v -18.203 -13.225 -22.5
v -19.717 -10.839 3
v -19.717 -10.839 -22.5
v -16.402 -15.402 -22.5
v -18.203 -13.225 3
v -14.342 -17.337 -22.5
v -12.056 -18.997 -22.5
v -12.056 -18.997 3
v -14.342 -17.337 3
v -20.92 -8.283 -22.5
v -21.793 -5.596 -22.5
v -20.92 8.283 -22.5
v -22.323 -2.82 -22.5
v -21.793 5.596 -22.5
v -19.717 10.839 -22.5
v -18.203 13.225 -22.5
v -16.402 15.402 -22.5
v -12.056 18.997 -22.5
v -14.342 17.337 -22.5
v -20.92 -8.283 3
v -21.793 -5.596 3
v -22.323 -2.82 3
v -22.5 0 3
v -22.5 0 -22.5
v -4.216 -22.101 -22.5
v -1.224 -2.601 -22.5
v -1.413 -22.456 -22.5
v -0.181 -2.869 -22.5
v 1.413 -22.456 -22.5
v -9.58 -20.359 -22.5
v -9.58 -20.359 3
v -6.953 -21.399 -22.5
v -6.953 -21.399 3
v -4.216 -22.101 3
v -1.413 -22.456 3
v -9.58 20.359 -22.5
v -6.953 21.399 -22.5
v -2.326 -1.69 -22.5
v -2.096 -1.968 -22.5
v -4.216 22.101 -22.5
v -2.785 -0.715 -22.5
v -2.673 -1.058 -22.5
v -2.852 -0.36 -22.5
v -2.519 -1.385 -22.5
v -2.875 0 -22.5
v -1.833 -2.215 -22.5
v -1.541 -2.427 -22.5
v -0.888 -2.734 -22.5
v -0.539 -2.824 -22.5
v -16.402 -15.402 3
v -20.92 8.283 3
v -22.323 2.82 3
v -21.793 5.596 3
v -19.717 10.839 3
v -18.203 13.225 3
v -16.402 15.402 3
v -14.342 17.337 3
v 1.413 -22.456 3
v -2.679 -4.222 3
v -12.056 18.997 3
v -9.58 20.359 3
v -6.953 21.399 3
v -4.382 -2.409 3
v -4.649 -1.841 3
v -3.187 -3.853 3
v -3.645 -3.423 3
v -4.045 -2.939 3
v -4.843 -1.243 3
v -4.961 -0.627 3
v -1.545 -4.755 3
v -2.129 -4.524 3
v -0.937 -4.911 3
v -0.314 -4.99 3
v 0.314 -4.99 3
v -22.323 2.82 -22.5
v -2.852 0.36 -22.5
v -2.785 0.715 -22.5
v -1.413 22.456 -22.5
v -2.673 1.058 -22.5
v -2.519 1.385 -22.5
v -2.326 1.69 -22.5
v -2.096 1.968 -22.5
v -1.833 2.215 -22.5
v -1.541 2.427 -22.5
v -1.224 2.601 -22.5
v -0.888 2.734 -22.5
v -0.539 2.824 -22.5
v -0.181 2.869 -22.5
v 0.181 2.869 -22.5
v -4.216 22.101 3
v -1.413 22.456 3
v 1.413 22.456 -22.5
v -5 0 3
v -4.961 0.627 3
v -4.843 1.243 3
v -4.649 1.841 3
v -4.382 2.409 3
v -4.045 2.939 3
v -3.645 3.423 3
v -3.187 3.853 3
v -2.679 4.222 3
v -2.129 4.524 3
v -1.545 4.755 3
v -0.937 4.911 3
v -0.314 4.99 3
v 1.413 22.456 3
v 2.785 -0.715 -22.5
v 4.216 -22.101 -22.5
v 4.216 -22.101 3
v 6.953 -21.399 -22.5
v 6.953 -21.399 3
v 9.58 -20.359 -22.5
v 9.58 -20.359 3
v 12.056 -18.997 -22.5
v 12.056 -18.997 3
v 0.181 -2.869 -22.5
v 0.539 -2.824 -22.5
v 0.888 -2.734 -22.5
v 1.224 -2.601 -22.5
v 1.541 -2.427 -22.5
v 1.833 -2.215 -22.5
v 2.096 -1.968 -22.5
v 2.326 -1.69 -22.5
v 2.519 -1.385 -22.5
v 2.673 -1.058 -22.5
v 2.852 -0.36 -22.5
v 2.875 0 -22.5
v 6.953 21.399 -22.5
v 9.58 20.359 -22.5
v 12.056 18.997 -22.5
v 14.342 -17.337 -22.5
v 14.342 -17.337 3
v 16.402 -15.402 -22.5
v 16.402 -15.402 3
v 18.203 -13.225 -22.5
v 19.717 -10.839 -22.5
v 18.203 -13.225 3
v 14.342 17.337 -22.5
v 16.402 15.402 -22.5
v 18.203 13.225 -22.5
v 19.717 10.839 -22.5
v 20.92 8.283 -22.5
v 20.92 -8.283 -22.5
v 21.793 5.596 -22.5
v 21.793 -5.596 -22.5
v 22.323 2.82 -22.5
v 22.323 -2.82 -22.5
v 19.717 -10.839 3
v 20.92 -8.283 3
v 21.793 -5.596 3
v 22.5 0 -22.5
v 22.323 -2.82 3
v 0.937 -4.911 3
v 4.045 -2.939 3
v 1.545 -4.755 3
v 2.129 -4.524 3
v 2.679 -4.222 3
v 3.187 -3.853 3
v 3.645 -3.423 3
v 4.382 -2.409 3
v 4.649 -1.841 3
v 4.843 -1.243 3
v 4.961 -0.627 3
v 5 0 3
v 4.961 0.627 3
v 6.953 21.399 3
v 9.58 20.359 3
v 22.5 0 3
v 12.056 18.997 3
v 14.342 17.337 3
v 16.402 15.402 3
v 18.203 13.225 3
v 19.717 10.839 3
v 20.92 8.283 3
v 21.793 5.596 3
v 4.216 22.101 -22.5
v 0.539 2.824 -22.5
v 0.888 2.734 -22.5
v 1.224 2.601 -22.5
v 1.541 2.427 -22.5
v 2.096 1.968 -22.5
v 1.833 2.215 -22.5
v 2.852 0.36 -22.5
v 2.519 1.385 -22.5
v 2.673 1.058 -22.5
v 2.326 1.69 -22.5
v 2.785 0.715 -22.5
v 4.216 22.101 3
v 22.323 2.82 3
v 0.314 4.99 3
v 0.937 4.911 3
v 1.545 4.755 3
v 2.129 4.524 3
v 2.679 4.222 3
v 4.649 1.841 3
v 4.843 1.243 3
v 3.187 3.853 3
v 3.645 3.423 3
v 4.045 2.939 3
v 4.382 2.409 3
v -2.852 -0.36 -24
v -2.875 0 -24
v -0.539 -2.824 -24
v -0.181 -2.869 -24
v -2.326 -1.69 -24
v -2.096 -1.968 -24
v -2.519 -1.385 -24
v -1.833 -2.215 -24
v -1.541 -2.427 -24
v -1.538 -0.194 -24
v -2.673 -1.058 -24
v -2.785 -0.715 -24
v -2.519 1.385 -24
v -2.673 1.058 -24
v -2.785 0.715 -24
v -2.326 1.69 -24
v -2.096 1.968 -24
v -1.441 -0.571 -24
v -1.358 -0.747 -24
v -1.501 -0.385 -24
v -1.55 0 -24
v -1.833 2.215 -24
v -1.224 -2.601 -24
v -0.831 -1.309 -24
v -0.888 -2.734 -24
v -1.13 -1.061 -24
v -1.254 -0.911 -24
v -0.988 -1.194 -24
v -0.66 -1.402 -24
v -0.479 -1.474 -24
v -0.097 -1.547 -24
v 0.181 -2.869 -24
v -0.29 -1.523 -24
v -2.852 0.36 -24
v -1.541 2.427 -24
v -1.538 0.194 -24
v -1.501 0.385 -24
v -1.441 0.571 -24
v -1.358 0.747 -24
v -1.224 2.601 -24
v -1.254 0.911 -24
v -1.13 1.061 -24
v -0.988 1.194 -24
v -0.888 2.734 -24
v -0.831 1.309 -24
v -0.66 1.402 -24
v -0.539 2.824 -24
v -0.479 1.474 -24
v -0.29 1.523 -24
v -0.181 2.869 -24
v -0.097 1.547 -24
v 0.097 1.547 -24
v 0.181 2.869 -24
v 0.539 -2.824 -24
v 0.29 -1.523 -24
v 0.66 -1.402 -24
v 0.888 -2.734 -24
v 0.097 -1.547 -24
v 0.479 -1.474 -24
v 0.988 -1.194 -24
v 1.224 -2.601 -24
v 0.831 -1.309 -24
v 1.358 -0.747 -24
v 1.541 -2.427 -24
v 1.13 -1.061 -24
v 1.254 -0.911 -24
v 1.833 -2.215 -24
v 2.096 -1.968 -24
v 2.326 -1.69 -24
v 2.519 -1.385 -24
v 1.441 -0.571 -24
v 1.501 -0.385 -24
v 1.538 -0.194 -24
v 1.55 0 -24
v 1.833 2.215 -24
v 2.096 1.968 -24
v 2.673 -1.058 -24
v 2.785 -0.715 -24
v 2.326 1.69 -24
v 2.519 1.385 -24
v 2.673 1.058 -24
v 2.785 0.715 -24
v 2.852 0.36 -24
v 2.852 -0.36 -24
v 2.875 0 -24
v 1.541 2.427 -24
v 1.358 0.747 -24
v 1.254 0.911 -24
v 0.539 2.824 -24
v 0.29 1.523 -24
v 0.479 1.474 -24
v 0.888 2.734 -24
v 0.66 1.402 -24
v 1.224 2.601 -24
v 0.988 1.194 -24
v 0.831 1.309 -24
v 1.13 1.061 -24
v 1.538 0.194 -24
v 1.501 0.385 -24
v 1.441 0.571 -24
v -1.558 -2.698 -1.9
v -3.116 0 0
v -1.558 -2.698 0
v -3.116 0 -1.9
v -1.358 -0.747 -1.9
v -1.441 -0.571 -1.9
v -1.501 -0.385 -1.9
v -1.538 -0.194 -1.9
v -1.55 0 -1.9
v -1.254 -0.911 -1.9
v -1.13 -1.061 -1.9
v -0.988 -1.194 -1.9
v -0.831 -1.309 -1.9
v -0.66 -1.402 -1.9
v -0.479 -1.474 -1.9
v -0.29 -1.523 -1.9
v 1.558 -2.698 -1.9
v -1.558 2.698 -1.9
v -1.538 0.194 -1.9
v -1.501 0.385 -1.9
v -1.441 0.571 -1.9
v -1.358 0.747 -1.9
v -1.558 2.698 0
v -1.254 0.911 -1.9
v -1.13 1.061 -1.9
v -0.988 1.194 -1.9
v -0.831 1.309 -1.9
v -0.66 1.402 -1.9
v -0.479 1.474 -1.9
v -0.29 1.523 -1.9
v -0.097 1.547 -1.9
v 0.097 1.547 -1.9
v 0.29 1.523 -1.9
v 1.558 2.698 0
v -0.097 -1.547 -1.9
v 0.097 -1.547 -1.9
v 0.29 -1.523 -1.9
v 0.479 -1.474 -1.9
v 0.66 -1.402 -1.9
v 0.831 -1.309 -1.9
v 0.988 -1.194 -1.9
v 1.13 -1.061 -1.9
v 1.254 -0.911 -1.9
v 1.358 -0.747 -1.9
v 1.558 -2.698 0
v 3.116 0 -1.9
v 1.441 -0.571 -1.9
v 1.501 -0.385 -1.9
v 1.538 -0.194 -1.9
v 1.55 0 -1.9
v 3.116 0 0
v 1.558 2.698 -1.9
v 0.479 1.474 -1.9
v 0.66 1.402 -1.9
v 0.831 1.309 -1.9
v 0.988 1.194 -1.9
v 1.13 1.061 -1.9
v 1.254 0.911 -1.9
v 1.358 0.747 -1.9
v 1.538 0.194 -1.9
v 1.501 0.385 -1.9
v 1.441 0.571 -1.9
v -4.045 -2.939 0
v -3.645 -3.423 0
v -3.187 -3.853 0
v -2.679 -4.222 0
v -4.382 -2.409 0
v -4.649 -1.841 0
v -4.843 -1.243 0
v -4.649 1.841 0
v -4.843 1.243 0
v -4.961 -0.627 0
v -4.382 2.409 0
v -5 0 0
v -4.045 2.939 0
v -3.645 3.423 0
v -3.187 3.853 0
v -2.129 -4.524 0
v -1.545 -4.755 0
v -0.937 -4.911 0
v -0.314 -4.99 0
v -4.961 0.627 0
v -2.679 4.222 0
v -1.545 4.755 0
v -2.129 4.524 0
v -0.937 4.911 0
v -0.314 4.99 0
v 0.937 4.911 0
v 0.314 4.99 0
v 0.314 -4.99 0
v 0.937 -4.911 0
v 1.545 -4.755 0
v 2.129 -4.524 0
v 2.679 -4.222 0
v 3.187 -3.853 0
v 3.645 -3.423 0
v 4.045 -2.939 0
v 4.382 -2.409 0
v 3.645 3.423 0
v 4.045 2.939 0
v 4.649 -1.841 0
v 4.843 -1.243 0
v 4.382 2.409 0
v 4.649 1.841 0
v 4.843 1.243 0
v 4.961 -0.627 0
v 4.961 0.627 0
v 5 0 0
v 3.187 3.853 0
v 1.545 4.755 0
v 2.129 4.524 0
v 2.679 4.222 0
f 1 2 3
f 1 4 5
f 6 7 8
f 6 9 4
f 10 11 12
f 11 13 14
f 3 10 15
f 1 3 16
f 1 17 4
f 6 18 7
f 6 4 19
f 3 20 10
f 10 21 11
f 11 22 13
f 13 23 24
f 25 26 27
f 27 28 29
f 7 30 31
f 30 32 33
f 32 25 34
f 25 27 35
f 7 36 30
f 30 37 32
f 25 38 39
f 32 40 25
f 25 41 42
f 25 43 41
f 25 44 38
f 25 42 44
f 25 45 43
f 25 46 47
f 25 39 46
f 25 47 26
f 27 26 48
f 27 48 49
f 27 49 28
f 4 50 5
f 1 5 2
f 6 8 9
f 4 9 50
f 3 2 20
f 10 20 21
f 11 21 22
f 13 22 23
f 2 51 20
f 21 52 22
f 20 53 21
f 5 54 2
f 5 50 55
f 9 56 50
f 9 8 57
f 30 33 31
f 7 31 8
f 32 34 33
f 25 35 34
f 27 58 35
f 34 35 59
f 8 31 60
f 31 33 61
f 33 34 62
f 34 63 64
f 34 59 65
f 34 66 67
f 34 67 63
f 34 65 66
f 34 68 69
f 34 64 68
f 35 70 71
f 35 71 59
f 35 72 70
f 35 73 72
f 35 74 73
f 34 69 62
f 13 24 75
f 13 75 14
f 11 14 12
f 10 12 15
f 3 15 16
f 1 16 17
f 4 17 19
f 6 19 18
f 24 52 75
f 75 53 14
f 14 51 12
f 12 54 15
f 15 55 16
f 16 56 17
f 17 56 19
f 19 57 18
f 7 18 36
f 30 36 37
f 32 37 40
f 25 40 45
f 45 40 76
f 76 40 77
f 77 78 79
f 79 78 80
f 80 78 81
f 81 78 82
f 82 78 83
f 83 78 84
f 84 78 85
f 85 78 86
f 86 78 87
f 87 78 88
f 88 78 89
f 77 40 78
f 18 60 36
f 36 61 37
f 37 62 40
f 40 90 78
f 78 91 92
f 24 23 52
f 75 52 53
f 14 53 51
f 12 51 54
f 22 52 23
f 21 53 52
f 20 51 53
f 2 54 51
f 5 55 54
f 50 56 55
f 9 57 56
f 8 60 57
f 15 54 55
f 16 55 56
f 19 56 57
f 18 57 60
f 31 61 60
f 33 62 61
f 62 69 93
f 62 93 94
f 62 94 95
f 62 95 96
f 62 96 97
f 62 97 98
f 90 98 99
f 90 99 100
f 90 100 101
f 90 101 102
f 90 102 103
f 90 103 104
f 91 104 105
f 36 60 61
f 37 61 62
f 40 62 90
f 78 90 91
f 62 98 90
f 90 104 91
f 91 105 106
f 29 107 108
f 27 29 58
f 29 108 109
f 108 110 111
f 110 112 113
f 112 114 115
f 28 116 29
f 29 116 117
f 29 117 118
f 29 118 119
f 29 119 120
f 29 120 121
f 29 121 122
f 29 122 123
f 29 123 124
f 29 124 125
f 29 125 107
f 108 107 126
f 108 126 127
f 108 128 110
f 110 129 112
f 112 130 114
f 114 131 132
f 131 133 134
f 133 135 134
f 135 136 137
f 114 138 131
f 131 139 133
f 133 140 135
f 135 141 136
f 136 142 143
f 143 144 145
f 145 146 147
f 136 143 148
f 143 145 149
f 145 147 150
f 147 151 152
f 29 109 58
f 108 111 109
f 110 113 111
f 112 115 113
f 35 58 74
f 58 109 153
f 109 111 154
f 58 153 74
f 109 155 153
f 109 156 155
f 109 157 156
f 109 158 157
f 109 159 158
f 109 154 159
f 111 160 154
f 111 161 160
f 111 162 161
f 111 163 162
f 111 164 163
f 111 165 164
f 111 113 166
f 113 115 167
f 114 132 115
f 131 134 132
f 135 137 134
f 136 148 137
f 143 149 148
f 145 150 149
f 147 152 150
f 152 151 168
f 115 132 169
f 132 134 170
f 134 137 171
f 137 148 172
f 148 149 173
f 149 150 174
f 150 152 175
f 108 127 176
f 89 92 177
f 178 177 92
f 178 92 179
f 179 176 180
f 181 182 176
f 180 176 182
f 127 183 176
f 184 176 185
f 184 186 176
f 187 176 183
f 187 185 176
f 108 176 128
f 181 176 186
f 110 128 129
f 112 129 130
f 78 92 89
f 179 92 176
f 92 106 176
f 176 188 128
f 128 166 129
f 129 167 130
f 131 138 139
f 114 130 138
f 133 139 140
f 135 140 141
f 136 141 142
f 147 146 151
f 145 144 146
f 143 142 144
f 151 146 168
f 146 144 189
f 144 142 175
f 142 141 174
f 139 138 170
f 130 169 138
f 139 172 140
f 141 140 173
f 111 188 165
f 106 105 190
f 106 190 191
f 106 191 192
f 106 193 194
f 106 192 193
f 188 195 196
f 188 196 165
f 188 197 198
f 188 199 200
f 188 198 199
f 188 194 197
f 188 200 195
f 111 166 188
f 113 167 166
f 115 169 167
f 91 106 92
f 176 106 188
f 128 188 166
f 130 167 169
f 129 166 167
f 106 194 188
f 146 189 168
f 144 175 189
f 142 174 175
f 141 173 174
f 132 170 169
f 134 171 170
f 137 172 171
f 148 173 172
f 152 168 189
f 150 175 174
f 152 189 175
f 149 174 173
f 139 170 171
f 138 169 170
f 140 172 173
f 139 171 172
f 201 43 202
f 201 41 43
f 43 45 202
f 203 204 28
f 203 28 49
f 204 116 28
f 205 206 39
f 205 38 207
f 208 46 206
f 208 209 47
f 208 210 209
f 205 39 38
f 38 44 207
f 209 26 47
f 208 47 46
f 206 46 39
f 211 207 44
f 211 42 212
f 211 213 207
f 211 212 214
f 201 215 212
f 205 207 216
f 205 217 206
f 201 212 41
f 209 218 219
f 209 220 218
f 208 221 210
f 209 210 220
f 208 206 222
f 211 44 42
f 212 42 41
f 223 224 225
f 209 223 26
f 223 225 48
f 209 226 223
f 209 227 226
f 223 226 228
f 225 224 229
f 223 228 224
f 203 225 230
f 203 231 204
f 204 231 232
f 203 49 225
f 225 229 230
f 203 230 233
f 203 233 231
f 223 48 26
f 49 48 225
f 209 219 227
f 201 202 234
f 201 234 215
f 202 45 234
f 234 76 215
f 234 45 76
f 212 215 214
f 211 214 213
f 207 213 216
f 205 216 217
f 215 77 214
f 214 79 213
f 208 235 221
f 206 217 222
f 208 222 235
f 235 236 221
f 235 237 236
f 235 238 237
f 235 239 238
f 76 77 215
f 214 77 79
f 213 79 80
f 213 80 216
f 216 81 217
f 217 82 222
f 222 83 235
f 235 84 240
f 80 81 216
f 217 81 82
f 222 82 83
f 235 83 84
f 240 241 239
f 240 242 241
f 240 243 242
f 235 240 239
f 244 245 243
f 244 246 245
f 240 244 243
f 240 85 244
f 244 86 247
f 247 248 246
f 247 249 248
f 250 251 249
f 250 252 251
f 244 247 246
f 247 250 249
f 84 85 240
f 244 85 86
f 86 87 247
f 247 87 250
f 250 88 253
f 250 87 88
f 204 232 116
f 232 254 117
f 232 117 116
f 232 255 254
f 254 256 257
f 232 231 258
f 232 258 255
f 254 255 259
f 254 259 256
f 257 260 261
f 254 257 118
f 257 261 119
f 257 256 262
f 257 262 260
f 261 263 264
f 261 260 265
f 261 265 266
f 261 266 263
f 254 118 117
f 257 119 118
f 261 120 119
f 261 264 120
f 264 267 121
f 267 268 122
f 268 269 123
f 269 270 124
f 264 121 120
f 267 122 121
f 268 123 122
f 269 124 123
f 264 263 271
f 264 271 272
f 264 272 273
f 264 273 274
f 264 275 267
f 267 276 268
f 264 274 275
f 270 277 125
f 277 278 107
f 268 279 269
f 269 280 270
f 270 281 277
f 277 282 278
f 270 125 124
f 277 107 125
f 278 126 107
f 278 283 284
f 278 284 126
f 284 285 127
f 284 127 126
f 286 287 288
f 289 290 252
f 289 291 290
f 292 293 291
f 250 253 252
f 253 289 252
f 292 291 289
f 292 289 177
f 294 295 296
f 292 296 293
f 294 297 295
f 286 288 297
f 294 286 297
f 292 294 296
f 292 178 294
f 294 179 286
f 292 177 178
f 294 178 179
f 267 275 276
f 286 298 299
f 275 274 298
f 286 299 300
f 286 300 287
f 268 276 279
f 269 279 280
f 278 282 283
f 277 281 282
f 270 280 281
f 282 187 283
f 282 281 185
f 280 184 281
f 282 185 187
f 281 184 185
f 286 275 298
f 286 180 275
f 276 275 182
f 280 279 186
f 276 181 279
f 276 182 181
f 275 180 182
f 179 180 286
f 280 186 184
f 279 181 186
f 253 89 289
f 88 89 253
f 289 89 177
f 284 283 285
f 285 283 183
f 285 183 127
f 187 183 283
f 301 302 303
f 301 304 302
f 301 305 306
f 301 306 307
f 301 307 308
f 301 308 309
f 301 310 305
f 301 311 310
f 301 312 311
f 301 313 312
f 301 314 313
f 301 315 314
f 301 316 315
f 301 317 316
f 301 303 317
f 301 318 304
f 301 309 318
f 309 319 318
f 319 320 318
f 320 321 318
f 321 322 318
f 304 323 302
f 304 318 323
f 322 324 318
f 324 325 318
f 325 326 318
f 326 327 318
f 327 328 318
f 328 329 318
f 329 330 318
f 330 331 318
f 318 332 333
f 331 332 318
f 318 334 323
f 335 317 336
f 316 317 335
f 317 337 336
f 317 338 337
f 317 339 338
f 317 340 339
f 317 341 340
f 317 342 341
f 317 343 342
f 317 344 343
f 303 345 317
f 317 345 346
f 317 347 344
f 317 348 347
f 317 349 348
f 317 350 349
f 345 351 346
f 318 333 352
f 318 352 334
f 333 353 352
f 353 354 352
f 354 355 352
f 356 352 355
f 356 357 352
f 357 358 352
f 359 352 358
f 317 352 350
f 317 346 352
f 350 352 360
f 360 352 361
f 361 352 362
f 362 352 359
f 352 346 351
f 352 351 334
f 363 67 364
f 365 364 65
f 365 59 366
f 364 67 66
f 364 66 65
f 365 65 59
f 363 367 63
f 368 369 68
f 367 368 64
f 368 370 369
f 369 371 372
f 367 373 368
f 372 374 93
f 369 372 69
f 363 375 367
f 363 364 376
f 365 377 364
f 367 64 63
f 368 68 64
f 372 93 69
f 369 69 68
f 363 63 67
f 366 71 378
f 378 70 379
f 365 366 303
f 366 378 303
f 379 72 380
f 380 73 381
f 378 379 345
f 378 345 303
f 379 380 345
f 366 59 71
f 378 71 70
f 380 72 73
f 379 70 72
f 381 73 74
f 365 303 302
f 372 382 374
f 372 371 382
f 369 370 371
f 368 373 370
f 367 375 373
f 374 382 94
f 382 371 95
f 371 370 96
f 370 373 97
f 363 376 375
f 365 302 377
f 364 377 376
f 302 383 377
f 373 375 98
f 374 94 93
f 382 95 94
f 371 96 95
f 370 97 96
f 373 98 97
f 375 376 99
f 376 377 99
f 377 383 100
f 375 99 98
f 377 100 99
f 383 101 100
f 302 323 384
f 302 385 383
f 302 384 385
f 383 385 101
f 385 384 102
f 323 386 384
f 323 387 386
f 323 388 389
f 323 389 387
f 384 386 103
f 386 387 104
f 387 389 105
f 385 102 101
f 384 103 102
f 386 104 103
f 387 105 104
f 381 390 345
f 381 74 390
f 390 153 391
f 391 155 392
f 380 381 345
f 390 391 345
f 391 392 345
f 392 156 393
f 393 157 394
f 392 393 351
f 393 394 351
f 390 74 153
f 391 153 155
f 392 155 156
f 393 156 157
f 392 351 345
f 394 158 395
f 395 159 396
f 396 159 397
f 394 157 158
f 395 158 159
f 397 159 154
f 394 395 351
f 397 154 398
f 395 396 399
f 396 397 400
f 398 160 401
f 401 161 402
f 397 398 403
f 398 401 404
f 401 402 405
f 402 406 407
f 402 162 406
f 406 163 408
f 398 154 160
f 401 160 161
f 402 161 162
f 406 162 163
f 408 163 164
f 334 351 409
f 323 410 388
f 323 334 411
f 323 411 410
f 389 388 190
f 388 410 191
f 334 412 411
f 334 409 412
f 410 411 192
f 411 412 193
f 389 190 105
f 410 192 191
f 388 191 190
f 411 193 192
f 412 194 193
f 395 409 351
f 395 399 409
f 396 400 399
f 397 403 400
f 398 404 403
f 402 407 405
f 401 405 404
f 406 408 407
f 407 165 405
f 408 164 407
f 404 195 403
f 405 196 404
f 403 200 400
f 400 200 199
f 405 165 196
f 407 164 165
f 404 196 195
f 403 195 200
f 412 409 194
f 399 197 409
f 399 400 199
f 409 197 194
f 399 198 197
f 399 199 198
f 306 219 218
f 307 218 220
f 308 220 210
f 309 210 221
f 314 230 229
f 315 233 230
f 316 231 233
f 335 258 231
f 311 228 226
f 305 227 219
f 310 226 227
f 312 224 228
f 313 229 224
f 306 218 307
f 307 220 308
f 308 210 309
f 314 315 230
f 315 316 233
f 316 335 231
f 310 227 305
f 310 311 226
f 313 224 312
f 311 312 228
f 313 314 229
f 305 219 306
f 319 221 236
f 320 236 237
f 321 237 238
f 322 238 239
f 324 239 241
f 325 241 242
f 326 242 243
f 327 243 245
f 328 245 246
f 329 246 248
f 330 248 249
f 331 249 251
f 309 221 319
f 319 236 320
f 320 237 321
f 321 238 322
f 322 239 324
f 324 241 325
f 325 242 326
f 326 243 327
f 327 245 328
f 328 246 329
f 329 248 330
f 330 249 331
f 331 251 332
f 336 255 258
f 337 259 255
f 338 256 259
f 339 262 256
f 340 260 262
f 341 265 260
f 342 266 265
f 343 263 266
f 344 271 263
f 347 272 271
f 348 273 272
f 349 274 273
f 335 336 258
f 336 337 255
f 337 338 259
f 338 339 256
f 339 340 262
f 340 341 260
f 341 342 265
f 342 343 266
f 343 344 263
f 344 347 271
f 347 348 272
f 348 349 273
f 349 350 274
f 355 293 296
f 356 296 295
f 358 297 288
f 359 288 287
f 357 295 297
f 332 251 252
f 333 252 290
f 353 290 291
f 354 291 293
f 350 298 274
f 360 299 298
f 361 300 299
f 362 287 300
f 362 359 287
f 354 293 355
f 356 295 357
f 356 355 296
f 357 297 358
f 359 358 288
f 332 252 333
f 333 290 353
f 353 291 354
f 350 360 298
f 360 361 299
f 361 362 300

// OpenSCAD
$fn = 50;

difference() {
	union() {
		translate(v = [0, 0, -22.5]) {
			cylinder(h = 25.5, r = 22.5);
		}
		#translate(v = [0, 0, -24.0]) {
			cylinder(h = 24, r = 2.875);
		}
	}
	union() {
		translate(v = [0, 0, 0]) {
			rotate(a = [0, 0, 0]) {
				difference() {
					union() {
						translate(v = [0, 0, -1.9]) {
							linear_extrude(height = 1.9) {
								polygon(points = [[3.1158, 0.0], [1.5579000000000005, 2.698361953111554], [-1.5578999999999994, 2.6983619531115544], [-3.1158, 3.815754496783323e-16], [-1.5579000000000014, -2.6983619531115535], [1.557899999999998, -2.6983619531115552]]);
							}
						}
					}
					union();
				}
			}
		}
		#cylinder(h = 3, r = 5.0);
		#translate(v = [0, 0, -100.0]) {
			cylinder(h = 200, r = 1.55);
		}
	}
}
